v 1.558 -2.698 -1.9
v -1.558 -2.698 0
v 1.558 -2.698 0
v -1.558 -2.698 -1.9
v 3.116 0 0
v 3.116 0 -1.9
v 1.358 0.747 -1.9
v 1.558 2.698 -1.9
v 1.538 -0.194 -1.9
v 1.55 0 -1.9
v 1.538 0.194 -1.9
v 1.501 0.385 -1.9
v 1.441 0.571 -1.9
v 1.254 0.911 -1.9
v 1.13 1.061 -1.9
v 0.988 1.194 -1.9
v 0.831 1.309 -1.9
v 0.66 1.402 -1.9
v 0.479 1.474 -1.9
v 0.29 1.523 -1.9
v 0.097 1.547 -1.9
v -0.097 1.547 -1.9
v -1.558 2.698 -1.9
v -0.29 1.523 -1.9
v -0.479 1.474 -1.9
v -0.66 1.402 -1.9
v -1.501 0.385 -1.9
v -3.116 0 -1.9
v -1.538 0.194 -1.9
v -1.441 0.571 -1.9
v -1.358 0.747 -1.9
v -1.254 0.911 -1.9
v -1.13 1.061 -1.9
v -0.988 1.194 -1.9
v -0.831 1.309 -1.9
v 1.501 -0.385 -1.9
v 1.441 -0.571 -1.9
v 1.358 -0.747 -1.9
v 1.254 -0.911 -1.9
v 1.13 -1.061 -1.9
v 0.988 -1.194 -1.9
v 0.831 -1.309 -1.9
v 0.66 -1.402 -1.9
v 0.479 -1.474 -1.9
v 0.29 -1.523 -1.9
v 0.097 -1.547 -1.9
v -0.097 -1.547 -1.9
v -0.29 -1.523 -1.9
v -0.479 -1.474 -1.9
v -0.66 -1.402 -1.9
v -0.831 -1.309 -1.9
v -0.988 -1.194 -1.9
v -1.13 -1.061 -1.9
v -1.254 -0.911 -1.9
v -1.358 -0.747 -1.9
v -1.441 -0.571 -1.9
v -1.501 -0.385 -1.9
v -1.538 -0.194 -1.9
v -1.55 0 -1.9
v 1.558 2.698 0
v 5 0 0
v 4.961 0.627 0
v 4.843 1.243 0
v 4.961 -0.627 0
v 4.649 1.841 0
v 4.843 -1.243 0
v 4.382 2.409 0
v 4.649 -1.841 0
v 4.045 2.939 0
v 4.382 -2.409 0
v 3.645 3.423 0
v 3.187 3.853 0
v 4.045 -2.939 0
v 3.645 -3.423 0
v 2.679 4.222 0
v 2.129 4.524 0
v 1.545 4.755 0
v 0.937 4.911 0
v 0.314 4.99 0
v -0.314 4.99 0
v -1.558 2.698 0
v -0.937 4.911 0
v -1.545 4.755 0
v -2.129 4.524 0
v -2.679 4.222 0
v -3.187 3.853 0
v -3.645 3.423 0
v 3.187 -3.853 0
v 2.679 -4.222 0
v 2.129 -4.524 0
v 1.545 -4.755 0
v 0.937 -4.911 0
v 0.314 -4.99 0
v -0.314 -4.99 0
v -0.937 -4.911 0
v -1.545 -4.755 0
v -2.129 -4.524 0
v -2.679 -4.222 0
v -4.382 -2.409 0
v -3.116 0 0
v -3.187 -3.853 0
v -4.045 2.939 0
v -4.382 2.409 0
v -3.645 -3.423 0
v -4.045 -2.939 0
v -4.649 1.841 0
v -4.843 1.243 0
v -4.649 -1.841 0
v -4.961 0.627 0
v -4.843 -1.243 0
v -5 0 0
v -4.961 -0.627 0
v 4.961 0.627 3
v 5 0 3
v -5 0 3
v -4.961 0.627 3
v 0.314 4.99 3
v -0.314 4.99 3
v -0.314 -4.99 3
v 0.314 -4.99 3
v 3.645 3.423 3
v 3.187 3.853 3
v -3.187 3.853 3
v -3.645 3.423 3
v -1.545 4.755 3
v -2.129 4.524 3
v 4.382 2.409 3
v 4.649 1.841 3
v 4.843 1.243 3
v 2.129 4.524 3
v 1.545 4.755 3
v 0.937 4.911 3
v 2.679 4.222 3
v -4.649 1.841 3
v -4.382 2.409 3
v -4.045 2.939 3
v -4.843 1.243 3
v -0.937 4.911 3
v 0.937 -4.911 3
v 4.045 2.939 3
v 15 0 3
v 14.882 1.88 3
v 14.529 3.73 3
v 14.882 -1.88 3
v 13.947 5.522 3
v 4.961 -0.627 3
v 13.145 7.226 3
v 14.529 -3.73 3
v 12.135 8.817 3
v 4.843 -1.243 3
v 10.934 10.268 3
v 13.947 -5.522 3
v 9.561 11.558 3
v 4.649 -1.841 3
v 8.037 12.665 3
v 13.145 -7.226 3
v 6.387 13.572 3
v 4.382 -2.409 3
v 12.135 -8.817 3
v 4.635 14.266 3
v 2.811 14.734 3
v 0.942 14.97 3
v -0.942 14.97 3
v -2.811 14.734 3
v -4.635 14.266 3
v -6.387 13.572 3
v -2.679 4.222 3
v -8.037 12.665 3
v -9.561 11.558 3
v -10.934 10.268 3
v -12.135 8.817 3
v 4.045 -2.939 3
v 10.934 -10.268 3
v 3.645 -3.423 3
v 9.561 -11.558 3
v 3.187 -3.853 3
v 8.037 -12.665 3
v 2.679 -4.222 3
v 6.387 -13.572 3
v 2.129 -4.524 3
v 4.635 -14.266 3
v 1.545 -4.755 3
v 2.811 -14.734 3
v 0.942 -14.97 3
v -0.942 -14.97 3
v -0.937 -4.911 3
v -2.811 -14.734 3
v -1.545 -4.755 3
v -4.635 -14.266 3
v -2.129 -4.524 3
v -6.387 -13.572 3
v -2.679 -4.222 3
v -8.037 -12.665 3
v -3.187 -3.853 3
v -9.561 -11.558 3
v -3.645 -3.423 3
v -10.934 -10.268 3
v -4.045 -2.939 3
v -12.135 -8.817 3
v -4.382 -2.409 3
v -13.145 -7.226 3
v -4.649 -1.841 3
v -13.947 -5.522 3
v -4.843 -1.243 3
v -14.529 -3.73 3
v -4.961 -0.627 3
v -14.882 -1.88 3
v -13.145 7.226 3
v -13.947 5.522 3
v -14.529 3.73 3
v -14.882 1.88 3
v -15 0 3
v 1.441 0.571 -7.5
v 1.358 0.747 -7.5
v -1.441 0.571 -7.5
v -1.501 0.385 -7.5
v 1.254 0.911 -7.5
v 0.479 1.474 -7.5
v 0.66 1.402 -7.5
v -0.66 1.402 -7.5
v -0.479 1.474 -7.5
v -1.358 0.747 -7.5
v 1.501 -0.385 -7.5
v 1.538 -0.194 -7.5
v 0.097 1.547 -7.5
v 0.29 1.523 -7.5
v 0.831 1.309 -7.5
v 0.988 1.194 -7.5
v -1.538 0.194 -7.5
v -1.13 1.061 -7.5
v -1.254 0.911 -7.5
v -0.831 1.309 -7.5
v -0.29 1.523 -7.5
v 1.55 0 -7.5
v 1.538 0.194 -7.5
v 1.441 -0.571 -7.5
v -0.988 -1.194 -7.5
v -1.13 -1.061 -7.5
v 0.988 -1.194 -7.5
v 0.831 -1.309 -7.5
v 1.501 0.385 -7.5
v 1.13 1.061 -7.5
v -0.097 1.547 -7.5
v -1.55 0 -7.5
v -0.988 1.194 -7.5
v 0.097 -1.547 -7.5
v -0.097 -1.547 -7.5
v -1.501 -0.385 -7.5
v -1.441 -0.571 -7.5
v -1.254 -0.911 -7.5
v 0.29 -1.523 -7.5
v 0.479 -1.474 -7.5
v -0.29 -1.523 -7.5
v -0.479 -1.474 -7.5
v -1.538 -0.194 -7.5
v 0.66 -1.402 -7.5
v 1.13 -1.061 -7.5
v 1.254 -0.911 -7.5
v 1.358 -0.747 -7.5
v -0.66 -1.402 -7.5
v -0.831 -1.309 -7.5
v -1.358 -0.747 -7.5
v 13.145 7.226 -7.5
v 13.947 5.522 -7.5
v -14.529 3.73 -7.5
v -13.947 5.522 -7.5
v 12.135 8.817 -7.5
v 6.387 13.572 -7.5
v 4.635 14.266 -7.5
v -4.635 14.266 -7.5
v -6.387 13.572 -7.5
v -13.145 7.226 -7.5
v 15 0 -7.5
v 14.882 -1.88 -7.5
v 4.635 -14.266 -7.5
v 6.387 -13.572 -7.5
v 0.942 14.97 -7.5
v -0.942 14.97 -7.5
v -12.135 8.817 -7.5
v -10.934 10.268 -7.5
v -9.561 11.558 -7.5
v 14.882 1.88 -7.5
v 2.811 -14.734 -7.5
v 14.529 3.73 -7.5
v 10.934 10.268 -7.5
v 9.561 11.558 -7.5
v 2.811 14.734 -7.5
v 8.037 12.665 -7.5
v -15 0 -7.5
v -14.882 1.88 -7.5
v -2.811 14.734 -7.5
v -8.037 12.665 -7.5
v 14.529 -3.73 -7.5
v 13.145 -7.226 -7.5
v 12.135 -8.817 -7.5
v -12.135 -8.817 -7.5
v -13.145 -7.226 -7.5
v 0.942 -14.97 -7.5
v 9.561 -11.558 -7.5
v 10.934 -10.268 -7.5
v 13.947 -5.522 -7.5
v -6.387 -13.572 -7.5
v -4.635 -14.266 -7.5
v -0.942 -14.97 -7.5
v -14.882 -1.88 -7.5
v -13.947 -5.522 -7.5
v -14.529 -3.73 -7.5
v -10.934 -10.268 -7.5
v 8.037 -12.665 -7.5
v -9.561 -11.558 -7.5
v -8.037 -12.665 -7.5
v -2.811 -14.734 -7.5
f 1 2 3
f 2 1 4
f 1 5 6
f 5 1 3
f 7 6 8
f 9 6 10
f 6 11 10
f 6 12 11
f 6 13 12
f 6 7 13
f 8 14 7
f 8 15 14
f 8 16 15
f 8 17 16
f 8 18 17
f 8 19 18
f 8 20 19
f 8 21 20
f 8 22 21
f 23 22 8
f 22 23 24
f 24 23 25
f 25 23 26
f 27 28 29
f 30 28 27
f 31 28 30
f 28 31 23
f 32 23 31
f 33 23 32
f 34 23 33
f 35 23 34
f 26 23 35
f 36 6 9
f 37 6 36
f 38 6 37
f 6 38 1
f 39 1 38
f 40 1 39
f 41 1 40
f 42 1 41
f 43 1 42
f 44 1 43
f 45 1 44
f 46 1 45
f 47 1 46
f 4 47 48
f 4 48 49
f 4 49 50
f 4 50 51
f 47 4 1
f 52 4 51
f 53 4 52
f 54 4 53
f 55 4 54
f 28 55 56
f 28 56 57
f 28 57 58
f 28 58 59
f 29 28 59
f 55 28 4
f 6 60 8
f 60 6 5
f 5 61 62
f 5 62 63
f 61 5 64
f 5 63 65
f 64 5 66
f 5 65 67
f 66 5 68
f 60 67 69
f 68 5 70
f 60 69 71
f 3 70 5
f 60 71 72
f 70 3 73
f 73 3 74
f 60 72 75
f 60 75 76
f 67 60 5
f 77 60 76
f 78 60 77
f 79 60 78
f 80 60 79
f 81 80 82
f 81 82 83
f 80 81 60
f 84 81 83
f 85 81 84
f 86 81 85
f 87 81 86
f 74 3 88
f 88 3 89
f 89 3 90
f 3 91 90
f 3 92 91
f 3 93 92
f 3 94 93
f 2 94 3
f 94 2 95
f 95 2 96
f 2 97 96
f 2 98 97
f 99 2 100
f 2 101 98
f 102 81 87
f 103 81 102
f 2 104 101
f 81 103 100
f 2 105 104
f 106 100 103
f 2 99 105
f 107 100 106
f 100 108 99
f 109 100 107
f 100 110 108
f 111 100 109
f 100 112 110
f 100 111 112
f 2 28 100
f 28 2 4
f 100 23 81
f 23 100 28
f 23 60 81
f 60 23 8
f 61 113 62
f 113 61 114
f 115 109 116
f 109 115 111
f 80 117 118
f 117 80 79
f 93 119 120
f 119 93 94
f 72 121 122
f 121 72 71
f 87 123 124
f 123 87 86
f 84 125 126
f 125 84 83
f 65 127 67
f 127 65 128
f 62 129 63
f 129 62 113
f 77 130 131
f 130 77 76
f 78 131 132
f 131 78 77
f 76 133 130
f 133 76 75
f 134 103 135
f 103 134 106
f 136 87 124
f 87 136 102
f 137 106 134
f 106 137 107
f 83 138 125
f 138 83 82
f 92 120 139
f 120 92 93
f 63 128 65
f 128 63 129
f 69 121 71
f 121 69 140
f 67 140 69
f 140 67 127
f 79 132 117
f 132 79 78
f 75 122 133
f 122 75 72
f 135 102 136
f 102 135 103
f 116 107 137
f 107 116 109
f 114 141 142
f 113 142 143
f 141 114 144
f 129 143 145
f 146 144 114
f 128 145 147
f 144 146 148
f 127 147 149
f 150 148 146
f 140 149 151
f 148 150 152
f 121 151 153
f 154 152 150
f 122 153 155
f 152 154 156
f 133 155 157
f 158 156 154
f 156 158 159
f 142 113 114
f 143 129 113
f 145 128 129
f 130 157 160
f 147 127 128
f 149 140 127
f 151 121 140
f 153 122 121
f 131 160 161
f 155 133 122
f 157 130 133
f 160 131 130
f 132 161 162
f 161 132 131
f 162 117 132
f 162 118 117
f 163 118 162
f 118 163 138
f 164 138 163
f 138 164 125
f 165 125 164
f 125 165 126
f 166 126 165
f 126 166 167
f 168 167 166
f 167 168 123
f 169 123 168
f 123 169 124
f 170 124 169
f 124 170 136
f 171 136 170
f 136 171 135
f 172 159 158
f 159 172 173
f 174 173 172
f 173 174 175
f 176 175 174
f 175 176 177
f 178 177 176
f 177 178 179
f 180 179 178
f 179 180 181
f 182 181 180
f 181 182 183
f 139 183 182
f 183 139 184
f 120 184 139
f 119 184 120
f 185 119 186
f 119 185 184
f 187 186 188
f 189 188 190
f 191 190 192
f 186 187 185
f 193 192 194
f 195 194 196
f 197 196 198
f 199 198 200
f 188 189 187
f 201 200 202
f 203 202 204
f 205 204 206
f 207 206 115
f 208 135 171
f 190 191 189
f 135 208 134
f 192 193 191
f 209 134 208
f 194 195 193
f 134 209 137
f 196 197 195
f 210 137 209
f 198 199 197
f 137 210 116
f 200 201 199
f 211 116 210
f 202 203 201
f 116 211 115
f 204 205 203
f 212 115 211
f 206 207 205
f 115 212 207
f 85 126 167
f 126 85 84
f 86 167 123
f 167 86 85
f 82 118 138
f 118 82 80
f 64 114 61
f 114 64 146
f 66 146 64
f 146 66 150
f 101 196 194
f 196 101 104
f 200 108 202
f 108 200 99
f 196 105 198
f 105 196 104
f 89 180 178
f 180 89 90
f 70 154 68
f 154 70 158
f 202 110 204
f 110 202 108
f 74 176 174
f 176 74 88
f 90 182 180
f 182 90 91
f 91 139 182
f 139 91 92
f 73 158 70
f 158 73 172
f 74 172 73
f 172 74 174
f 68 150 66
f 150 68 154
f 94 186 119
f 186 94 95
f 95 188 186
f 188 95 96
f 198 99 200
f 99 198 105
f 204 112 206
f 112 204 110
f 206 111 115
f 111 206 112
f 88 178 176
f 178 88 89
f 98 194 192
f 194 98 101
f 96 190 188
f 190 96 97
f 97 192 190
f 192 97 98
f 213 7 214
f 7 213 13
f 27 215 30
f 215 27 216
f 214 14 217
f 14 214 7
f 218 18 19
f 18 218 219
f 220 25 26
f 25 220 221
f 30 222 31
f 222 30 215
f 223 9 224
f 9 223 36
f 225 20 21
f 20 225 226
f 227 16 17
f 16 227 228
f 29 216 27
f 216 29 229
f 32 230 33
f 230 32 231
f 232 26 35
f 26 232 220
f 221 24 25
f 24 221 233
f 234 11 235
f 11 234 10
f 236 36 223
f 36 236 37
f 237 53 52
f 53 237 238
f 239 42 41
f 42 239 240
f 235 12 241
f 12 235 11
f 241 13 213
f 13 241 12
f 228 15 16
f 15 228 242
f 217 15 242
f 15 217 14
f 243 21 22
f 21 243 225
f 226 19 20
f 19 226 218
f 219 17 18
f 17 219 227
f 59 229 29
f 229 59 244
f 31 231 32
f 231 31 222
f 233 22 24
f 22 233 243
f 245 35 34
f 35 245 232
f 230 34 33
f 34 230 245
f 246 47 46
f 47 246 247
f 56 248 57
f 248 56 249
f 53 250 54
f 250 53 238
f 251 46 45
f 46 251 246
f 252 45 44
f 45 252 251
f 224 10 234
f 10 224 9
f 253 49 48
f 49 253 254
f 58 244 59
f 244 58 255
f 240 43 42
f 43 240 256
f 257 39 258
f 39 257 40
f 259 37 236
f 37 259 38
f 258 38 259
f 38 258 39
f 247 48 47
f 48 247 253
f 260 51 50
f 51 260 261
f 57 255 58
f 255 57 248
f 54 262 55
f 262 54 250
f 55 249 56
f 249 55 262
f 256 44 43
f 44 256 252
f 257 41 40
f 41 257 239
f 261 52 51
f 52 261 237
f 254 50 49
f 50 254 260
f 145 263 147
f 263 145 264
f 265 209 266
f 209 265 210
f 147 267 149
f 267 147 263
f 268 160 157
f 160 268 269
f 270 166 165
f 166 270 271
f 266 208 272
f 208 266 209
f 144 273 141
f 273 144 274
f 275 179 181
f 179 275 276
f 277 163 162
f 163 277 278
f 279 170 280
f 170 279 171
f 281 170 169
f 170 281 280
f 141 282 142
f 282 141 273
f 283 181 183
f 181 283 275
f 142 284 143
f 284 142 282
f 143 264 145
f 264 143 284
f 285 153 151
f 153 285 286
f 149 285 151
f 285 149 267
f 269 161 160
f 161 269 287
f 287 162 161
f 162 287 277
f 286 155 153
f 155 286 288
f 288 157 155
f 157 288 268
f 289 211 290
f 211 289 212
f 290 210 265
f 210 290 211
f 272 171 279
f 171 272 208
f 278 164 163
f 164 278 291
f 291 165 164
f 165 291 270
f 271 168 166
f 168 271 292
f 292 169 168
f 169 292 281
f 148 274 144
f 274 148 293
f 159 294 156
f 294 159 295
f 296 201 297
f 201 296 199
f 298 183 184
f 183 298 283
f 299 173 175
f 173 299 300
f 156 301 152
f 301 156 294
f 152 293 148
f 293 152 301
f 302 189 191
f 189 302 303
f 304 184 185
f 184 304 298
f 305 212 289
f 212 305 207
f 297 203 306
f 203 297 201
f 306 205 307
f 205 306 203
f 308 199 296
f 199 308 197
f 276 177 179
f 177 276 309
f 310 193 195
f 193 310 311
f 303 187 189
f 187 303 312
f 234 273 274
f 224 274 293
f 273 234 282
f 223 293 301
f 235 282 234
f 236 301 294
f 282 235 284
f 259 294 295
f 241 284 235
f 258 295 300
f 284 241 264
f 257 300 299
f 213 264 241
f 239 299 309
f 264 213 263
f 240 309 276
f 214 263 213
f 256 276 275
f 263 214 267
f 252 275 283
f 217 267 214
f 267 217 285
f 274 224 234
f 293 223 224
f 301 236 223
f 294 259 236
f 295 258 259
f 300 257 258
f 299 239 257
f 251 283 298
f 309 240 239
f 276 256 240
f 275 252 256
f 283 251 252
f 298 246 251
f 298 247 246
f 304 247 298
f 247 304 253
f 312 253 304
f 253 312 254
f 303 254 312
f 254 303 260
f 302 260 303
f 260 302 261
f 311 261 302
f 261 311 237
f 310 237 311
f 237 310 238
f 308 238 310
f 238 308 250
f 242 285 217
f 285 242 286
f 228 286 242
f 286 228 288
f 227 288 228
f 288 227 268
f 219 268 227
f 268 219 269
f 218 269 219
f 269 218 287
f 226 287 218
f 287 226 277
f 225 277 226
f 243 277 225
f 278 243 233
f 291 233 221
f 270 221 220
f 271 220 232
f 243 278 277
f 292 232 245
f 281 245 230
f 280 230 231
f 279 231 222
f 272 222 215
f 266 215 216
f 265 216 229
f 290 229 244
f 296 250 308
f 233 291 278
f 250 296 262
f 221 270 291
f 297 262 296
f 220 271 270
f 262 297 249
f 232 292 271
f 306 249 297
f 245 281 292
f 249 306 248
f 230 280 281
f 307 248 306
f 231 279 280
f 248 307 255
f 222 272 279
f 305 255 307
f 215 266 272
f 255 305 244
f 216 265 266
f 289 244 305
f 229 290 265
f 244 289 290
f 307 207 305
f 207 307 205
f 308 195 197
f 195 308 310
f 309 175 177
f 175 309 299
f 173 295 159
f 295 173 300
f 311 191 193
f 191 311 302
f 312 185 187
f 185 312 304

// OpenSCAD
$fn = 50;


difference() {
	union() {
		translate(v = [0, 0, -7.5000000000]) {
			cylinder(h = 10.5000000000, r = 15.0000000000);
		}
	}
	union() {
		translate(v = [0, 0, 0]) {
			rotate(a = [0, 0, 0]) {
				difference() {
					union() {
						translate(v = [0, 0, -1.9000000000]) {
							linear_extrude(height = 1.9000000000) {
								polygon(points = [[3.1158000000, 0.0000000000], [1.5579000000, 2.6983619531], [-1.5579000000, 2.6983619531], [-3.1158000000, 0.0000000000], [-1.5579000000, -2.6983619531], [1.5579000000, -2.6983619531]]);
							}
						}
					}
					union();
				}
			}
		}
		#cylinder(h = 3, r = 5.0000000000);
		#translate(v = [0, 0, -100.0000000000]) {
			cylinder(h = 200, r = 1.5500000000);
		}
	}
}
